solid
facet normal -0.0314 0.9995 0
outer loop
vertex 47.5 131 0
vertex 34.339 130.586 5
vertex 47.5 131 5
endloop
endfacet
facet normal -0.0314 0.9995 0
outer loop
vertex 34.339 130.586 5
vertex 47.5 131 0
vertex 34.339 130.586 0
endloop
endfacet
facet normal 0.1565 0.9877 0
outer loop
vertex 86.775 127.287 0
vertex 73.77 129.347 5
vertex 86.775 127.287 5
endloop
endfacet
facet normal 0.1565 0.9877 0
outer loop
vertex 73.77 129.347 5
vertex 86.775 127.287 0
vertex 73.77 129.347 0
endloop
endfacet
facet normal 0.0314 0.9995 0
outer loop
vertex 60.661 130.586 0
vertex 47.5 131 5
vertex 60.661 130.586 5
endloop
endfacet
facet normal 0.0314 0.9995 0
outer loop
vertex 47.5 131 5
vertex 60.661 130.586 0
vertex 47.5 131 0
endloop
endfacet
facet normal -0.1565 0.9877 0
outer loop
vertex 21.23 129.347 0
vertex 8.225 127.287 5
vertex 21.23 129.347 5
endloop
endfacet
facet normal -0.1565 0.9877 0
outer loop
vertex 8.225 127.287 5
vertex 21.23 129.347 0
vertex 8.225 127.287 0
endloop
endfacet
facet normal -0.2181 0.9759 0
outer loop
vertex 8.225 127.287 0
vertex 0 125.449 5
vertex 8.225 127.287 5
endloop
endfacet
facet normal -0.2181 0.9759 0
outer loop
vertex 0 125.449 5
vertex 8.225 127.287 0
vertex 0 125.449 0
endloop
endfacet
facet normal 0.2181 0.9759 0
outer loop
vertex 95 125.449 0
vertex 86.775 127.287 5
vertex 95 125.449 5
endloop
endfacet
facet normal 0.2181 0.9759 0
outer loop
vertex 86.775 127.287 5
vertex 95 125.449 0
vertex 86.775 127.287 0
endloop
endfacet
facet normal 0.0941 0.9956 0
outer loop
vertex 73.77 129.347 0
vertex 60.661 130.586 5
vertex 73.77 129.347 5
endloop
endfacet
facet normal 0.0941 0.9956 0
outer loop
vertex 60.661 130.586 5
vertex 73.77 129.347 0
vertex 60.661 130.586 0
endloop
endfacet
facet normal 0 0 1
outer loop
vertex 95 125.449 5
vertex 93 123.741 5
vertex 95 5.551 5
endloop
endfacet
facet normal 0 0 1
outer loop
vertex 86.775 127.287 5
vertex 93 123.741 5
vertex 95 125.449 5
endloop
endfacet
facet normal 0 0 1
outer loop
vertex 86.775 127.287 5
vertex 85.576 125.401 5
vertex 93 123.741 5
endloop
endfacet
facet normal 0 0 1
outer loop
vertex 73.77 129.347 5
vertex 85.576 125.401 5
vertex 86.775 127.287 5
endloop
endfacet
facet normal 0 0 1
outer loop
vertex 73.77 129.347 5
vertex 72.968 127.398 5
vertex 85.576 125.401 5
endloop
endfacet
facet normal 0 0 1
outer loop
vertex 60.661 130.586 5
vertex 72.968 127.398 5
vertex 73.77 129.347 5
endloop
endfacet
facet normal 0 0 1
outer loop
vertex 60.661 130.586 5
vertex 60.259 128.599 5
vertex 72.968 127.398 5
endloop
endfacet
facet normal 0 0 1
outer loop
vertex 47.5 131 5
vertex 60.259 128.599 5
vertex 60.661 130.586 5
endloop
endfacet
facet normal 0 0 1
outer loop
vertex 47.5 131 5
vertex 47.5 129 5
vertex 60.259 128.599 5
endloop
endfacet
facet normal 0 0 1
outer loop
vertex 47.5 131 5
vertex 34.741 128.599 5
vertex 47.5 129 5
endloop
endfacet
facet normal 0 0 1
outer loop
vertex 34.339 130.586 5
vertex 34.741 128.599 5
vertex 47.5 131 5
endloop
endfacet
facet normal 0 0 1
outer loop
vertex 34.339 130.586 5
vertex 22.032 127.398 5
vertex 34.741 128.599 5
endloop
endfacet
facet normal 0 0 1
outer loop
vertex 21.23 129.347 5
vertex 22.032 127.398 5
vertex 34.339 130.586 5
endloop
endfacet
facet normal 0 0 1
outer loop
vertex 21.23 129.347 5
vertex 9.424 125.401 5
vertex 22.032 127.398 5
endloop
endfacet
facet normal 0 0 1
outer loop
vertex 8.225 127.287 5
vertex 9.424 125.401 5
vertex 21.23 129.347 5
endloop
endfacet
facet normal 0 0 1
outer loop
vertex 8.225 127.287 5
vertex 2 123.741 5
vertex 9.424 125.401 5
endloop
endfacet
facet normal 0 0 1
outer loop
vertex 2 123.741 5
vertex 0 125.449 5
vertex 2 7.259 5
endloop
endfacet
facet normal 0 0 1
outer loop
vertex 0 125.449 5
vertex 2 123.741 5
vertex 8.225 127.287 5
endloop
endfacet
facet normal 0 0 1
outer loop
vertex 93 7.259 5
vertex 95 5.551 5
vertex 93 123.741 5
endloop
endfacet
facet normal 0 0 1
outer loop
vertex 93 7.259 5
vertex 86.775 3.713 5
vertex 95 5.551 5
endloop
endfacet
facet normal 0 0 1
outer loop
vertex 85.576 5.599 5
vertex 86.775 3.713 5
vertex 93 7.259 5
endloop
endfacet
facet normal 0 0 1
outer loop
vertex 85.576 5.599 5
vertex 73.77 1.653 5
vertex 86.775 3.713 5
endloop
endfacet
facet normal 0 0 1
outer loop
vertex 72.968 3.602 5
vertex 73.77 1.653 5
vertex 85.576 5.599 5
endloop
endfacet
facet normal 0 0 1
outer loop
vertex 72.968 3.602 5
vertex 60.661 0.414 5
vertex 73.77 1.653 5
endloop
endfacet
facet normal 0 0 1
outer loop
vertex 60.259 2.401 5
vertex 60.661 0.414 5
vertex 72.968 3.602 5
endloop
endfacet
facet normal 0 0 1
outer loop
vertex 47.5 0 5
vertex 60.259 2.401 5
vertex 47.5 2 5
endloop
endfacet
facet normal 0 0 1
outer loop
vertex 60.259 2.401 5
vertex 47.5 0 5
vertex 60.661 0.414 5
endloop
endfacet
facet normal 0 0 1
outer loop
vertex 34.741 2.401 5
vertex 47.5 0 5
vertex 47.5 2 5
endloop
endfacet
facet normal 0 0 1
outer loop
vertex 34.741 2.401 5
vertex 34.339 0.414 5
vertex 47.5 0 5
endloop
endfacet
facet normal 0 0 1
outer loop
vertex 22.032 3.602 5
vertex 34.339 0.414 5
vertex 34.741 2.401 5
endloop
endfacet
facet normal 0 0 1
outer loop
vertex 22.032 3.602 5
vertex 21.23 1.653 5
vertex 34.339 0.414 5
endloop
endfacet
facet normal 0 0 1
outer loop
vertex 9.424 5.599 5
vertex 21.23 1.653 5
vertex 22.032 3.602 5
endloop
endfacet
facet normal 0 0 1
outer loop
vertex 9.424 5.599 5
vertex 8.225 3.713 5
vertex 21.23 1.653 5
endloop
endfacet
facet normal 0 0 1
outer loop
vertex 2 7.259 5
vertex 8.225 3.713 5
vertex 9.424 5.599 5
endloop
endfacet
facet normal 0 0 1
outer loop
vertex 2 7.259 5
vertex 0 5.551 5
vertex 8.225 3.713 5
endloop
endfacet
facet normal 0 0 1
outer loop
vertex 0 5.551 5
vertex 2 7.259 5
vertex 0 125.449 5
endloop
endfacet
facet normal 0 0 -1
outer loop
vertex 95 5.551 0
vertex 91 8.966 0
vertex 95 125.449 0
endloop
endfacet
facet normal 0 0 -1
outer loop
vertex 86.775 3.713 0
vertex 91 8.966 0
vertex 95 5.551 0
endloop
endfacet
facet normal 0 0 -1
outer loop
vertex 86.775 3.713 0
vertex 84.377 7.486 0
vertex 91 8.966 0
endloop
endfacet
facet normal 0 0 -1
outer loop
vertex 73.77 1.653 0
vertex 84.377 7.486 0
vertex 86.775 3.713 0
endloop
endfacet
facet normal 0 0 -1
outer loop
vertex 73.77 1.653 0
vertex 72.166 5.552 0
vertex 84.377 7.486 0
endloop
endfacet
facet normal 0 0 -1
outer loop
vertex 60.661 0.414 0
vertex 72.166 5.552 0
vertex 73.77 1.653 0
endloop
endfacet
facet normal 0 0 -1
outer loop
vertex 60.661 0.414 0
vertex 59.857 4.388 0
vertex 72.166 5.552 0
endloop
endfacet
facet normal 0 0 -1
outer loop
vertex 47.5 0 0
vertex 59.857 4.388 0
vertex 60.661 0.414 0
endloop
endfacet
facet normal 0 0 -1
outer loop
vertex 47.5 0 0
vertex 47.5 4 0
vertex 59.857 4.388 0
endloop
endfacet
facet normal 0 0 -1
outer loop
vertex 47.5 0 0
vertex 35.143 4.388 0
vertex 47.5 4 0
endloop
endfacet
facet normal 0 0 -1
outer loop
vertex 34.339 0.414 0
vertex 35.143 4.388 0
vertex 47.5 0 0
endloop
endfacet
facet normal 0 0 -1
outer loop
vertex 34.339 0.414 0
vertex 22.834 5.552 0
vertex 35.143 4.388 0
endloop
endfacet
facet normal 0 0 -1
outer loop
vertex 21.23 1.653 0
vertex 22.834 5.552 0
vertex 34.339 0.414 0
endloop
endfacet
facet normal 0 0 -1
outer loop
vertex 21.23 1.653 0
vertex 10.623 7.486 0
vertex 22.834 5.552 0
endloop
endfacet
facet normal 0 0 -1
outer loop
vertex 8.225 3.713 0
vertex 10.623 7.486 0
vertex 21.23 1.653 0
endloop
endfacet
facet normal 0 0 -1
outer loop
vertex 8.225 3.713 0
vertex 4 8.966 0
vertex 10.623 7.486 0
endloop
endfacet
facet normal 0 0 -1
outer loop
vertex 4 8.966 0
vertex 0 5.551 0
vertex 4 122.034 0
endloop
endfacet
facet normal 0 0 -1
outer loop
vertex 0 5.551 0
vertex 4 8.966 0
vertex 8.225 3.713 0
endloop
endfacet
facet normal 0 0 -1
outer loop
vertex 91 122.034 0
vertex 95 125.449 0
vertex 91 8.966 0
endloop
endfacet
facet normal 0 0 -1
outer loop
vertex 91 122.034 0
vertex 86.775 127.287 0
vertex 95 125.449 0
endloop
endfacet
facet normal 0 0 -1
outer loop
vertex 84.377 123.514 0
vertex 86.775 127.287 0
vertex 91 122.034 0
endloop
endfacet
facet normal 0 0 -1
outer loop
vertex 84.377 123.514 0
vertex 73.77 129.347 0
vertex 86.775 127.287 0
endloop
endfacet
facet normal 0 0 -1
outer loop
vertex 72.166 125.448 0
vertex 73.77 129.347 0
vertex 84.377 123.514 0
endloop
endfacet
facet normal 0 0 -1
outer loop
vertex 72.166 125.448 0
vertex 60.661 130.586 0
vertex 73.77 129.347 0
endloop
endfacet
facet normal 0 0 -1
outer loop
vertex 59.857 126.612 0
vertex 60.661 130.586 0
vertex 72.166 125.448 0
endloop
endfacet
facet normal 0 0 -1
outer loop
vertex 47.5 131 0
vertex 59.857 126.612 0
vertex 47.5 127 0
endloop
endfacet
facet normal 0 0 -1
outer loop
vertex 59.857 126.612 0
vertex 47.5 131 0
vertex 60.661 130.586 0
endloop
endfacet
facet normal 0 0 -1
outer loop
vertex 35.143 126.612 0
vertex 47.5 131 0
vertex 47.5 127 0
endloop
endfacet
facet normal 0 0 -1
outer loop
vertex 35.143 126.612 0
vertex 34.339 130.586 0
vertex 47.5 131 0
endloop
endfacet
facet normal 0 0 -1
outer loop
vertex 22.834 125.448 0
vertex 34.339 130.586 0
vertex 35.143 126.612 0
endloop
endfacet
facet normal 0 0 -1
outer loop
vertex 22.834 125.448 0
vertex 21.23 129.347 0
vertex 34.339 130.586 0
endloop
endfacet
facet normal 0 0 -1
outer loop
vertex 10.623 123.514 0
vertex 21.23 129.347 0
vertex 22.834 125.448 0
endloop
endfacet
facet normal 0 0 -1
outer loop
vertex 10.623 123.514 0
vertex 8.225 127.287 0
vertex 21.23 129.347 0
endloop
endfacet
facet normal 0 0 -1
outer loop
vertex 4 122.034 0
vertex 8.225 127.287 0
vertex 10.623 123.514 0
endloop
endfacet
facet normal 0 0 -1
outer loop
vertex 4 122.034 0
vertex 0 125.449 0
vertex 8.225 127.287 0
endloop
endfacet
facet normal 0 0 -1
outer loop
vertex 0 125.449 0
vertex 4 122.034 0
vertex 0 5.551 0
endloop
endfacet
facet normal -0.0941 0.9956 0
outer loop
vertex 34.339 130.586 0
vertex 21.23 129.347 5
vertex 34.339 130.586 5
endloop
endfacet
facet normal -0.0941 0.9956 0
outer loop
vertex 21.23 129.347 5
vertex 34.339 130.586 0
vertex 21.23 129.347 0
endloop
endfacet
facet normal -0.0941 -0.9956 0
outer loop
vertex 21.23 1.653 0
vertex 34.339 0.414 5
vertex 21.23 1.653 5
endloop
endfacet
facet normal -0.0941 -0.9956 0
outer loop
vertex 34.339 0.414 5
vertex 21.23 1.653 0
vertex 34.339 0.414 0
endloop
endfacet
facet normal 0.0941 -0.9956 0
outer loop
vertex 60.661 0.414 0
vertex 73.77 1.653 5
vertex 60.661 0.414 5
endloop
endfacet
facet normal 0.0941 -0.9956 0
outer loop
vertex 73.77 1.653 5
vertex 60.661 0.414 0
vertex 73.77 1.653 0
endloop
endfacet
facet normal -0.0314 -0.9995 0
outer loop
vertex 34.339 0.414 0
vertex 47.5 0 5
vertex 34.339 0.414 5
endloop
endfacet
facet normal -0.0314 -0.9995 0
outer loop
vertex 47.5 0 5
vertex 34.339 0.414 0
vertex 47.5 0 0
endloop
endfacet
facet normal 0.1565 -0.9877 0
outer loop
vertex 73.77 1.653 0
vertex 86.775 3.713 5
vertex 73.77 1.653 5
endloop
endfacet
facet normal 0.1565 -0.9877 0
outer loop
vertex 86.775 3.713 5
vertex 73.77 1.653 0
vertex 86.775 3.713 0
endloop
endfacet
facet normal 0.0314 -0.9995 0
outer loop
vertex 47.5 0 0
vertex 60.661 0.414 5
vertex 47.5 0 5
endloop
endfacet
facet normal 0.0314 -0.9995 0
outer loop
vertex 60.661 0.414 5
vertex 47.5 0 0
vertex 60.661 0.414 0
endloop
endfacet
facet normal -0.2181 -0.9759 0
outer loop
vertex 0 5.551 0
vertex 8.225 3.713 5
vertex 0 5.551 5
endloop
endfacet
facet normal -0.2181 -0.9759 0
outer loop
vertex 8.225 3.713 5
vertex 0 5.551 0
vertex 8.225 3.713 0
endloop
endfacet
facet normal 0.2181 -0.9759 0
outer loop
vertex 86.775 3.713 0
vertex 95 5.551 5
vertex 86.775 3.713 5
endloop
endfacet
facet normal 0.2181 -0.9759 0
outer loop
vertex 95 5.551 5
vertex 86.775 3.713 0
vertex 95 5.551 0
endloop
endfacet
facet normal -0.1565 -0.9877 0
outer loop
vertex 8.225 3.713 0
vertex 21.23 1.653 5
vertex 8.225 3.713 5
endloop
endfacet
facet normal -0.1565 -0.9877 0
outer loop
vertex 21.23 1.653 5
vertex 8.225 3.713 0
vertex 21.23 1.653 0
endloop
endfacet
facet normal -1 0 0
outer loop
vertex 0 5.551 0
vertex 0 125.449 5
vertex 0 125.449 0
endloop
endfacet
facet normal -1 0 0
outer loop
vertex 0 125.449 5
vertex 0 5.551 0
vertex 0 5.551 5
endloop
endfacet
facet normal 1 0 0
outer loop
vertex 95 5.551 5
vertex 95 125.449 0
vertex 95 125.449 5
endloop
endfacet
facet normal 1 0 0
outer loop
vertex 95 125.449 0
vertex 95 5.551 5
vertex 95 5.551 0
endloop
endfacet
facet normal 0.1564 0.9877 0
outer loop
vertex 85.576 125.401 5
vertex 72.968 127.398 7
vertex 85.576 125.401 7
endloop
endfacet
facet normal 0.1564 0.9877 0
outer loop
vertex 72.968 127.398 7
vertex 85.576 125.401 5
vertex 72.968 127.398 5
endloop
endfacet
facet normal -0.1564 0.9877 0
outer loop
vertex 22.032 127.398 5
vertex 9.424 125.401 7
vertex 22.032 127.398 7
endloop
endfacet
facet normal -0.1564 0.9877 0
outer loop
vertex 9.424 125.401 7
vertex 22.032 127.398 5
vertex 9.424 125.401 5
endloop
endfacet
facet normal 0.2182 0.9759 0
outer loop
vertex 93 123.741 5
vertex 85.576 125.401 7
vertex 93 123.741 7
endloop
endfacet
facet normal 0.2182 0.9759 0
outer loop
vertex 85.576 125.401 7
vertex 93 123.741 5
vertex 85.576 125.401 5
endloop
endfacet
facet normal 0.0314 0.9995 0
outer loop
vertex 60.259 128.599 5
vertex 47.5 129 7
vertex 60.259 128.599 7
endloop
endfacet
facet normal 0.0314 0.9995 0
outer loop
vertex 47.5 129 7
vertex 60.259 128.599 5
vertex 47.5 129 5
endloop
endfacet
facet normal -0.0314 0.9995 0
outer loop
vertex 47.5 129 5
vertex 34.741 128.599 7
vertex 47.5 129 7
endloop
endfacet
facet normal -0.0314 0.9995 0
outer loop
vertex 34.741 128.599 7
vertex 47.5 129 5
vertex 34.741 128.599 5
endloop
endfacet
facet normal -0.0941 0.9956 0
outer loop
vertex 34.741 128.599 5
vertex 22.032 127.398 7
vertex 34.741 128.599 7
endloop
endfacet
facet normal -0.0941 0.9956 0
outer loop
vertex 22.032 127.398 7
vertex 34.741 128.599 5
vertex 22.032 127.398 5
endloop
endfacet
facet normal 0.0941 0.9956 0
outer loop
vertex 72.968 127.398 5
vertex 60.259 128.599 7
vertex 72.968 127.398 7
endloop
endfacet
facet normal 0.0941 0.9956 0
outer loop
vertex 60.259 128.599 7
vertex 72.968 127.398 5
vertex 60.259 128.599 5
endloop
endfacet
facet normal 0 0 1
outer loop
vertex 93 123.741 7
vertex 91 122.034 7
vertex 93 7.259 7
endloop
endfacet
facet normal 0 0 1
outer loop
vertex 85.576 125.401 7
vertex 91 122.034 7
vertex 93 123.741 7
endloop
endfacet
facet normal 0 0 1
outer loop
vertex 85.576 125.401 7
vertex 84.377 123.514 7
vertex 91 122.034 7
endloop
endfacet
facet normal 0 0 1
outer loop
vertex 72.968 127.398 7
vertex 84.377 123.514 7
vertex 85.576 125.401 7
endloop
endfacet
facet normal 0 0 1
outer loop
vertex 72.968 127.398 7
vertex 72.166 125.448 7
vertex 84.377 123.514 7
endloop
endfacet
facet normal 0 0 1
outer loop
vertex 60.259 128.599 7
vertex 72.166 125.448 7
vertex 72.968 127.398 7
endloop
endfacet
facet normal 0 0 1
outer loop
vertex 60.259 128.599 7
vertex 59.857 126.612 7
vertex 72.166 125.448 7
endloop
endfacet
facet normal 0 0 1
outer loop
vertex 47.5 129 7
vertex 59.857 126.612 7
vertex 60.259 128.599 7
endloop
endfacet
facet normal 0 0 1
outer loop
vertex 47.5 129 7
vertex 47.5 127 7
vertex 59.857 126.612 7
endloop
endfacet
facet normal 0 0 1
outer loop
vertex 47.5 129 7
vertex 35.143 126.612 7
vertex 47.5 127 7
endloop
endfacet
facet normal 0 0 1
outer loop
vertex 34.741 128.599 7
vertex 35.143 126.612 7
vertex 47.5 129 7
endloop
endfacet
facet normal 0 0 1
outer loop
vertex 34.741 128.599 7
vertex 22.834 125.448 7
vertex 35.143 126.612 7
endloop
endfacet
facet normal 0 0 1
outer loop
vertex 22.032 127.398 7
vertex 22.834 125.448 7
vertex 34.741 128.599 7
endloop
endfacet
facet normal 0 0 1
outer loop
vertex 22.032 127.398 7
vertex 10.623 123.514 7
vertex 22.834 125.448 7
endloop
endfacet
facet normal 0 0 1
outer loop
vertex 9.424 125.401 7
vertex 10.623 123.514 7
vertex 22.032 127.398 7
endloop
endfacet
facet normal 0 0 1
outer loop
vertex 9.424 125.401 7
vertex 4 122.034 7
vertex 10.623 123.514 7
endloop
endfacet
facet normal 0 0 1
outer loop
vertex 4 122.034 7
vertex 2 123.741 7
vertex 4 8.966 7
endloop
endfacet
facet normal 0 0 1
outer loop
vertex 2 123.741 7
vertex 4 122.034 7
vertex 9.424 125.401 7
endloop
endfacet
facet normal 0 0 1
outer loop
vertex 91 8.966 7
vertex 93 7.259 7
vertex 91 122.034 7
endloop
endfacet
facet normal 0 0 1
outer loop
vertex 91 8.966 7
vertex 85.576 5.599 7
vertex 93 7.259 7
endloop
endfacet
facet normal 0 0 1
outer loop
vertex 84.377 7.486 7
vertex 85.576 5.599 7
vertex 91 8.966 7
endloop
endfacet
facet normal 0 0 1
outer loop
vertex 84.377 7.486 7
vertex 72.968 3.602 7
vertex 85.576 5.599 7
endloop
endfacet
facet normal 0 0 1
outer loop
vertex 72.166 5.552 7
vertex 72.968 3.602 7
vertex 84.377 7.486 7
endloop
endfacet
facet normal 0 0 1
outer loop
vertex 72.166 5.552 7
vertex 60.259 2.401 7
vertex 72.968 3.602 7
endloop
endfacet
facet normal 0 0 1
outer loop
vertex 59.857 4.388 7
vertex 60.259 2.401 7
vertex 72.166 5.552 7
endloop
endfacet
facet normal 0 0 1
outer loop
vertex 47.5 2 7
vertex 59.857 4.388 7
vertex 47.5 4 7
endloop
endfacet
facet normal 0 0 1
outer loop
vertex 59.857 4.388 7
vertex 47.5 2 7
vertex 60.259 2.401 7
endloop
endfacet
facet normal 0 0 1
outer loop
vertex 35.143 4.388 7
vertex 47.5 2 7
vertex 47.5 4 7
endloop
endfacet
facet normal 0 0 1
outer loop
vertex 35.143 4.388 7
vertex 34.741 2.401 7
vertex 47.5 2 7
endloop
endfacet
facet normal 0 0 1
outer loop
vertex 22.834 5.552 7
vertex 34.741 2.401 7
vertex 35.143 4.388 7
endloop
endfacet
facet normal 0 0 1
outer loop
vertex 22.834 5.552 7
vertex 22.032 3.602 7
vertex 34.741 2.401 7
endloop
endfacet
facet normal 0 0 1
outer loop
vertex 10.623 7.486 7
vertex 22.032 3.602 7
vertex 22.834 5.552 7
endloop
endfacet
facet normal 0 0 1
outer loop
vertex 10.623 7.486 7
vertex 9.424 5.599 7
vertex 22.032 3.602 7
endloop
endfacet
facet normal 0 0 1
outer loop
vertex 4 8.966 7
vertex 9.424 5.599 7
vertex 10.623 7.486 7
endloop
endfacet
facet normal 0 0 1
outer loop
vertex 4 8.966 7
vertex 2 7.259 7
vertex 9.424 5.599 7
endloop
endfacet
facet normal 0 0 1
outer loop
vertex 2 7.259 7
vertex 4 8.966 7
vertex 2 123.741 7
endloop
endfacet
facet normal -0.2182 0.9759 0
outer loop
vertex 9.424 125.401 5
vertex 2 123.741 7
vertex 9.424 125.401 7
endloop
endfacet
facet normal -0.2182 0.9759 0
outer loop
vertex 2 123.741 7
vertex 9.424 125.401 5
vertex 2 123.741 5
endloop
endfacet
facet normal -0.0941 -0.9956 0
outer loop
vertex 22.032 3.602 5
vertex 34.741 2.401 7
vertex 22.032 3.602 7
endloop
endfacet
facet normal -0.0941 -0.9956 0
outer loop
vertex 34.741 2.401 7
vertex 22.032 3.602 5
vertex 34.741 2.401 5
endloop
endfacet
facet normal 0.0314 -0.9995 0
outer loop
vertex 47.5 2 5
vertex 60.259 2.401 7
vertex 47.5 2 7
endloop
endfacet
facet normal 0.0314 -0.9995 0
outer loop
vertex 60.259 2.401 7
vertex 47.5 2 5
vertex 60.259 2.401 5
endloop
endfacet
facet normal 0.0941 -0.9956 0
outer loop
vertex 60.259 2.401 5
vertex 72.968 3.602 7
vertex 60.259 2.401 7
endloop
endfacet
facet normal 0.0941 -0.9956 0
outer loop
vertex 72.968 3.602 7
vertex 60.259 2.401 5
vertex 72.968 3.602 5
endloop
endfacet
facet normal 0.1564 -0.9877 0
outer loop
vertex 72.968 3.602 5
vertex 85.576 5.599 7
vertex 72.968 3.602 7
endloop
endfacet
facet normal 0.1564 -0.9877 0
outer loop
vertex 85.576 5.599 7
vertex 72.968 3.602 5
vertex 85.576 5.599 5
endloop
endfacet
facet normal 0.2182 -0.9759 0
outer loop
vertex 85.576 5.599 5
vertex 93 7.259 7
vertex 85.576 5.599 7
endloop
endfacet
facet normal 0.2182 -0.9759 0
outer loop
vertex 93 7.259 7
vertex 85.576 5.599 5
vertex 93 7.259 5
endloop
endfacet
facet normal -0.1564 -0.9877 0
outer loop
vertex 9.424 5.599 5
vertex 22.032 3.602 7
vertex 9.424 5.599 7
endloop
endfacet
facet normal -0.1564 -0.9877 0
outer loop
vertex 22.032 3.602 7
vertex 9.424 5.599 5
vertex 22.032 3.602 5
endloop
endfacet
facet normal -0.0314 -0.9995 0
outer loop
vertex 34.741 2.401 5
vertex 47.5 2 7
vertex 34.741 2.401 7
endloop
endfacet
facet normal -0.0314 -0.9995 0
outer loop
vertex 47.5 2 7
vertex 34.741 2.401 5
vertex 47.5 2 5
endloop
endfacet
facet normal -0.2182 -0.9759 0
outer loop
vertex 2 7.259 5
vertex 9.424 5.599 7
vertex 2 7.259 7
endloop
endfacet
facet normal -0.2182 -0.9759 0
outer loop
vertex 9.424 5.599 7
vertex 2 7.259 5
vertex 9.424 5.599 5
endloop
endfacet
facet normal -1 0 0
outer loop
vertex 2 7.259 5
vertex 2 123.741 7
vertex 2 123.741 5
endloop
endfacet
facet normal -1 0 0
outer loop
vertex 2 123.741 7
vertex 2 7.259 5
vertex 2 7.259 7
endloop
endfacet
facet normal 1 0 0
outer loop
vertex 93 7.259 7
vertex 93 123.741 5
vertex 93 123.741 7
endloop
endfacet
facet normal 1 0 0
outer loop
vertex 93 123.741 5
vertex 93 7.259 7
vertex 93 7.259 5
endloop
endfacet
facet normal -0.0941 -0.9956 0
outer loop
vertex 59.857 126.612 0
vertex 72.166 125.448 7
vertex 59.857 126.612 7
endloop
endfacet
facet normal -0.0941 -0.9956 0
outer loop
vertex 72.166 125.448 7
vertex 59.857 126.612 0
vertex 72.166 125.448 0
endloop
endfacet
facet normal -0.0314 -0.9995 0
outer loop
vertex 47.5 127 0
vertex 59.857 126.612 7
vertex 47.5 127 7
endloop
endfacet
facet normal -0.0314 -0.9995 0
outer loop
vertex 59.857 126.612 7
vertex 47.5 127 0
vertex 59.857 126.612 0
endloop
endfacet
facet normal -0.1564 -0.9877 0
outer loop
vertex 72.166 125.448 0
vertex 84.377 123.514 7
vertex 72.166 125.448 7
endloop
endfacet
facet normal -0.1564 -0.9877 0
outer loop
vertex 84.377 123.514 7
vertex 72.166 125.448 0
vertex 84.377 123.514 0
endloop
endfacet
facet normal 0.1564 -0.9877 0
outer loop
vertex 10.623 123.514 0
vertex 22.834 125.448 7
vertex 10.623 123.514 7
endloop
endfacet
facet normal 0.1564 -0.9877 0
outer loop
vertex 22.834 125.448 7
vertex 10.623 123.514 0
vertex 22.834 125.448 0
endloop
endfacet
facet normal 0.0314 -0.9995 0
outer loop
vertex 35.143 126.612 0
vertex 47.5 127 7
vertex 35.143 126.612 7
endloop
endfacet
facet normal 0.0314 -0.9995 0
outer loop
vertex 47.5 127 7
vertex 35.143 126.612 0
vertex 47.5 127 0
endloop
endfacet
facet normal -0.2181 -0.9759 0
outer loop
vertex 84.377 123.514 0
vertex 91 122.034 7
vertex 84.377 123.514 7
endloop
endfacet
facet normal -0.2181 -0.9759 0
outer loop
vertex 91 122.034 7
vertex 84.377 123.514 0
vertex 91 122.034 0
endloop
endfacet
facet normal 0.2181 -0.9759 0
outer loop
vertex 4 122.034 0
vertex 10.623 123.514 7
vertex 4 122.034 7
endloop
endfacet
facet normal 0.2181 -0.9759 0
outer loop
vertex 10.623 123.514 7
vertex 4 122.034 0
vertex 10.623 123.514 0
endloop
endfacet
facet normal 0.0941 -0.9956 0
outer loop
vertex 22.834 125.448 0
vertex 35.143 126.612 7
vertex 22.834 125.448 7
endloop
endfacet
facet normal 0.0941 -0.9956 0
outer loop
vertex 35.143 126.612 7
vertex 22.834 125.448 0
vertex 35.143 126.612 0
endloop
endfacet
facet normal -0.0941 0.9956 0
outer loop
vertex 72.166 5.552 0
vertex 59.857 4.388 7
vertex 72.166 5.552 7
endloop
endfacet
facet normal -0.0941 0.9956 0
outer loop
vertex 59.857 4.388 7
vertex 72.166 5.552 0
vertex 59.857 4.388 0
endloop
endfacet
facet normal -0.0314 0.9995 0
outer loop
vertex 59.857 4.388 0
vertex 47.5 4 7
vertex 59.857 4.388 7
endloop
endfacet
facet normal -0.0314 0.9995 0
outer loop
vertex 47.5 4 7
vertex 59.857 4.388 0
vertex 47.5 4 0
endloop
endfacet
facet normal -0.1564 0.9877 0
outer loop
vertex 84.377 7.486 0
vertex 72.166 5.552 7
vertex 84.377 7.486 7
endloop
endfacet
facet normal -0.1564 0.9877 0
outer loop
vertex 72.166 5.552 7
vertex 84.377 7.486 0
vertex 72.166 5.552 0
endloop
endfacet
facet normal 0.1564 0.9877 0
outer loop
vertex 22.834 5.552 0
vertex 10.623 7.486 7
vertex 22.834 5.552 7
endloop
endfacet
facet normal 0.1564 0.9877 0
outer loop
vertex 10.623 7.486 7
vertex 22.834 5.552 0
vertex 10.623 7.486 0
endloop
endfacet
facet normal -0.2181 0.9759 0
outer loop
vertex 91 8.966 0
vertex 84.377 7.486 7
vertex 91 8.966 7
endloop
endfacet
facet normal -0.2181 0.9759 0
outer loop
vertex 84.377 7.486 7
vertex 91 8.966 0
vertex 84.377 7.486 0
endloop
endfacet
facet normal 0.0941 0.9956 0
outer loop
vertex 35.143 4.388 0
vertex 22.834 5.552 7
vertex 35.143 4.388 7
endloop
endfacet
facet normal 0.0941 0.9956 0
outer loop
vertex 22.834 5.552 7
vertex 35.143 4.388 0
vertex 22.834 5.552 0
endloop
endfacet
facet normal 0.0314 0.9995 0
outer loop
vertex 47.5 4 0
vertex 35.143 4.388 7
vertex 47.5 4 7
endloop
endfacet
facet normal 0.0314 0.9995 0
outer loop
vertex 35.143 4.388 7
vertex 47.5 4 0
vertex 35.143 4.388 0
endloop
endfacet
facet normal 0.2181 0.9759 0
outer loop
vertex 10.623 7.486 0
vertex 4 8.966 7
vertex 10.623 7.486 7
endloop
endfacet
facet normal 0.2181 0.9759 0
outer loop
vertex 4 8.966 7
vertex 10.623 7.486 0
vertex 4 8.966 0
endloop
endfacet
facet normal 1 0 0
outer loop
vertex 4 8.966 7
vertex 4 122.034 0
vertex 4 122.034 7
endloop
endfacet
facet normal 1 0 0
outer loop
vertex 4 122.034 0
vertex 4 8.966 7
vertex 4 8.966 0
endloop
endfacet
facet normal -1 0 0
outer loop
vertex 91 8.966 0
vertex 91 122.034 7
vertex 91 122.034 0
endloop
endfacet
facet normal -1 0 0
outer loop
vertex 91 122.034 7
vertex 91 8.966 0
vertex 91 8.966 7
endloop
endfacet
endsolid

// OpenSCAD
module base(width, length, thickness) {
    $fn = 100;
    intersection() {
        orad = length*1.6;
        translate([width/2, length-orad, 0]) {
            cylinder(thickness, orad, orad);
        }
        translate([width/2, orad, 0]) {
            cylinder(thickness, orad, orad);
        }
        cube([width, length, thickness]);
    }
}

thick = 7;
bw = 4;
lw = 2;
difference () {
    union() {
        base(95, 131, thick-2);
        translate([lw, lw, 0]) {
            base(95 - lw*2, 131 - lw*2, thick);
        }
    }
    translate([bw, bw, -3]) {
        base(95 - bw*2, 131 - bw*2, thick+6);
    }
}
